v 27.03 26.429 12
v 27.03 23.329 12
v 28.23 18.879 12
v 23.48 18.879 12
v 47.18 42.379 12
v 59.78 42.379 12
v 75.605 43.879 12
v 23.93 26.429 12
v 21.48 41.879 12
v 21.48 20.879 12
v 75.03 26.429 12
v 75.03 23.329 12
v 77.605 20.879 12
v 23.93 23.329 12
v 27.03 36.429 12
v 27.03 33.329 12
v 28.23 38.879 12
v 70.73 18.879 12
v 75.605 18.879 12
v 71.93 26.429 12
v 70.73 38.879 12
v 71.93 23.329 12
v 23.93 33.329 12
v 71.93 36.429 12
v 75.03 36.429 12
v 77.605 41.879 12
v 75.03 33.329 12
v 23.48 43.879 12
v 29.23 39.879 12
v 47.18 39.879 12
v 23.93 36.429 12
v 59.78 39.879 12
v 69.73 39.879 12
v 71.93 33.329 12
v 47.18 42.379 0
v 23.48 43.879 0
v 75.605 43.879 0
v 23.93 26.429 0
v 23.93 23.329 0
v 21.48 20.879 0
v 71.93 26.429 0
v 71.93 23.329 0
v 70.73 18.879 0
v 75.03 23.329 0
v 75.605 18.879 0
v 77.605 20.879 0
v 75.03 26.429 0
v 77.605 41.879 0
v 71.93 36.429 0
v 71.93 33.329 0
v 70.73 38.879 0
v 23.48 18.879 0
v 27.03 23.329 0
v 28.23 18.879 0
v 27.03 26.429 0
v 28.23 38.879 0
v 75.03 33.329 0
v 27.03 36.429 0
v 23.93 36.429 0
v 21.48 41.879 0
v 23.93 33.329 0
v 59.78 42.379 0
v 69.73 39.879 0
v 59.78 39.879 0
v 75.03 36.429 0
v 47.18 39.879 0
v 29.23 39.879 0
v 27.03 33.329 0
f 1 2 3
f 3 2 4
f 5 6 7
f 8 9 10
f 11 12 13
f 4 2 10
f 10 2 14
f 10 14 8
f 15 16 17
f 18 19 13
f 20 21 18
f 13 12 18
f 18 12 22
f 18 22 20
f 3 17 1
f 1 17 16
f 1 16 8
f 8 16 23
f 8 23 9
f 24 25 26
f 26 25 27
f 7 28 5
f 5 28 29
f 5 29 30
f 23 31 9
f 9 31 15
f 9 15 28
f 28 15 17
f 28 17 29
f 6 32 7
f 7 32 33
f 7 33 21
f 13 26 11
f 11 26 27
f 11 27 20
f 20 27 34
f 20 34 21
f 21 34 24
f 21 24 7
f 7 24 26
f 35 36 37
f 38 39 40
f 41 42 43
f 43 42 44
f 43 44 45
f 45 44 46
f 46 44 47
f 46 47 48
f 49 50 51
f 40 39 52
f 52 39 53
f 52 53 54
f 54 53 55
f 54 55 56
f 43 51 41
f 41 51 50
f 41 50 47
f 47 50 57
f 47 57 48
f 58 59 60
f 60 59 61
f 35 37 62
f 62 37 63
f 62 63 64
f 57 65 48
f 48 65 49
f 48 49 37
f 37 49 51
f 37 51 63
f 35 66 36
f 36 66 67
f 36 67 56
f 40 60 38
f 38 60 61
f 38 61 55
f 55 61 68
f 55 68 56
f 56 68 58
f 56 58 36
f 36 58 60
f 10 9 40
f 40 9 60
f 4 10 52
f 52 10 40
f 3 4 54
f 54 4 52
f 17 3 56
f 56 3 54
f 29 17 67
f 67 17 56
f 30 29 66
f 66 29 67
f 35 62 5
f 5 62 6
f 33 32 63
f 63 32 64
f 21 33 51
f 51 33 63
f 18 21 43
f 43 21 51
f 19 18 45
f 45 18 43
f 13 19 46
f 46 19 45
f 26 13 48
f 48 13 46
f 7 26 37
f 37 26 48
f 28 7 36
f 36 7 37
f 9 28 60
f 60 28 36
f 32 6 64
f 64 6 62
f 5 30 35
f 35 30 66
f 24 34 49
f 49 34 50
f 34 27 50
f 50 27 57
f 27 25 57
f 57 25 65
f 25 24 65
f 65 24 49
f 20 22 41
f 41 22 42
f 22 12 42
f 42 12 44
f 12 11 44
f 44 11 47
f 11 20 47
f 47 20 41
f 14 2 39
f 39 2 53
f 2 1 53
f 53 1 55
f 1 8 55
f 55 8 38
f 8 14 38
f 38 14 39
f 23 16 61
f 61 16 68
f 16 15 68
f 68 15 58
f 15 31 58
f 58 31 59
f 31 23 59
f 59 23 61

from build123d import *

# Parameters (mm, degrees)
ESBO_O2_W                = 2.5
ESBO_O2_H                = 2.5
RESSALTO_EXTRUS_O1_DEPTH = 12
ESBO_O5_W                = 0.7
ESBO_O5_H                = 2.5
RESSALTO_EXTRUS_O2_DEPTH = 12
ESBO_O7_W                = 3.1
ESBO_O7_H                = 3.1
CORTE_EXTRUS_O5_DEPTH    = 90.954849667


with BuildPart() as part:
    # Esboço2 → Ressalto-extrusão1 (new body)
    with BuildSketch(Plane.XY):
        Polygon((70.72996521, 18.87874794), (75.60496521, 18.87874794), (77.60496521, 20.87874794), (77.60496521, 41.878746033), (75.60496521, 43.878746033), (23.479967117, 43.878746033), (21.479967117, 41.878746033), (21.479967117, 20.87874794), (23.479967117, 18.87874794), (28.229967117, 18.87874794), (28.229967117, 38.878746033), (29.229967117, 39.878746033), (46.47996521, 39.878746033), (46.47996521, 42.378746033), (53.47996521, 42.378746033), (60.47996521, 42.378746033), (60.47996521, 39.878746033), (69.72996521, 39.878746033), (70.72996521, 38.878746033), align=None)
        with Locations((25.479967117, 34.878746033)):
            Rectangle(ESBO_O2_W, ESBO_O2_H, mode=Mode.SUBTRACT)
        with Locations((25.479967117, 24.87874794)):
            Rectangle(ESBO_O2_W, ESBO_O2_H, mode=Mode.SUBTRACT)
        with Locations((73.47996521, 34.878746033)):
            Rectangle(ESBO_O2_W, ESBO_O2_H, mode=Mode.SUBTRACT)
        with Locations((73.47996521, 24.87874794)):
            Rectangle(ESBO_O2_W, ESBO_O2_H, mode=Mode.SUBTRACT)
    extrude(amount=RESSALTO_EXTRUS_O1_DEPTH)

    # Esboço5 → Ressalto-extrusão2 (add, through all)
    with BuildSketch(Plane(origin=(0, 0, 0), x_dir=(-1, 0, 0), z_dir=(0, 0, -1))):
        with Locations((-60.12996521, 41.128746033)):
            Rectangle(ESBO_O5_W, ESBO_O5_H)
        with Locations((-46.82996521, 41.128746033)):
            Rectangle(ESBO_O5_W, ESBO_O5_H)
    extrude(amount=-RESSALTO_EXTRUS_O2_DEPTH)

    # Esboço7 → Corte-extrusão5 (cut, through all)
    with BuildSketch(Plane(origin=(0, 0, 0), x_dir=(-1, 0, 0), z_dir=(0, 0, -1))):
        with Locations((-73.47996521, 34.878746033)):
            Rectangle(ESBO_O7_W, ESBO_O7_H)
        with Locations((-73.47996521, 24.87874794)):
            Rectangle(ESBO_O7_W, ESBO_O7_H)
        with Locations((-25.479967117, 24.87874794)):
            Rectangle(ESBO_O7_W, ESBO_O7_H)
        with Locations((-25.479967117, 34.878746033)):
            Rectangle(ESBO_O7_W, ESBO_O7_H)
    extrude(amount=-CORTE_EXTRUS_O5_DEPTH, mode=Mode.SUBTRACT)


solid = part.part
